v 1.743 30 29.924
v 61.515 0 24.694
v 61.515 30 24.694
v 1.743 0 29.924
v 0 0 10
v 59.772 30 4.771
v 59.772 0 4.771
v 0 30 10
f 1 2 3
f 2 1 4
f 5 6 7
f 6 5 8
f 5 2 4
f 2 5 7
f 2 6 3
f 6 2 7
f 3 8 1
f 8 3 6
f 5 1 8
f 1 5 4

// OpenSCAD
// Define dimensions for the rectangular block
block_length = 60;  // Adjusted length of the block to match the original model
block_width = 30;   // Width of the block remains the same
block_height = 20;  // Height of the block remains the same

// Adjust orientation and position
translate([0, 0, 10])  // Raise the block to match the height of the original model
rotate([0, 0, 0])      // Correct the orientation to align with the original model
rotate([0, 5, 0])      // Remove tilt to match the original model
cube([block_length, block_width, block_height]);
